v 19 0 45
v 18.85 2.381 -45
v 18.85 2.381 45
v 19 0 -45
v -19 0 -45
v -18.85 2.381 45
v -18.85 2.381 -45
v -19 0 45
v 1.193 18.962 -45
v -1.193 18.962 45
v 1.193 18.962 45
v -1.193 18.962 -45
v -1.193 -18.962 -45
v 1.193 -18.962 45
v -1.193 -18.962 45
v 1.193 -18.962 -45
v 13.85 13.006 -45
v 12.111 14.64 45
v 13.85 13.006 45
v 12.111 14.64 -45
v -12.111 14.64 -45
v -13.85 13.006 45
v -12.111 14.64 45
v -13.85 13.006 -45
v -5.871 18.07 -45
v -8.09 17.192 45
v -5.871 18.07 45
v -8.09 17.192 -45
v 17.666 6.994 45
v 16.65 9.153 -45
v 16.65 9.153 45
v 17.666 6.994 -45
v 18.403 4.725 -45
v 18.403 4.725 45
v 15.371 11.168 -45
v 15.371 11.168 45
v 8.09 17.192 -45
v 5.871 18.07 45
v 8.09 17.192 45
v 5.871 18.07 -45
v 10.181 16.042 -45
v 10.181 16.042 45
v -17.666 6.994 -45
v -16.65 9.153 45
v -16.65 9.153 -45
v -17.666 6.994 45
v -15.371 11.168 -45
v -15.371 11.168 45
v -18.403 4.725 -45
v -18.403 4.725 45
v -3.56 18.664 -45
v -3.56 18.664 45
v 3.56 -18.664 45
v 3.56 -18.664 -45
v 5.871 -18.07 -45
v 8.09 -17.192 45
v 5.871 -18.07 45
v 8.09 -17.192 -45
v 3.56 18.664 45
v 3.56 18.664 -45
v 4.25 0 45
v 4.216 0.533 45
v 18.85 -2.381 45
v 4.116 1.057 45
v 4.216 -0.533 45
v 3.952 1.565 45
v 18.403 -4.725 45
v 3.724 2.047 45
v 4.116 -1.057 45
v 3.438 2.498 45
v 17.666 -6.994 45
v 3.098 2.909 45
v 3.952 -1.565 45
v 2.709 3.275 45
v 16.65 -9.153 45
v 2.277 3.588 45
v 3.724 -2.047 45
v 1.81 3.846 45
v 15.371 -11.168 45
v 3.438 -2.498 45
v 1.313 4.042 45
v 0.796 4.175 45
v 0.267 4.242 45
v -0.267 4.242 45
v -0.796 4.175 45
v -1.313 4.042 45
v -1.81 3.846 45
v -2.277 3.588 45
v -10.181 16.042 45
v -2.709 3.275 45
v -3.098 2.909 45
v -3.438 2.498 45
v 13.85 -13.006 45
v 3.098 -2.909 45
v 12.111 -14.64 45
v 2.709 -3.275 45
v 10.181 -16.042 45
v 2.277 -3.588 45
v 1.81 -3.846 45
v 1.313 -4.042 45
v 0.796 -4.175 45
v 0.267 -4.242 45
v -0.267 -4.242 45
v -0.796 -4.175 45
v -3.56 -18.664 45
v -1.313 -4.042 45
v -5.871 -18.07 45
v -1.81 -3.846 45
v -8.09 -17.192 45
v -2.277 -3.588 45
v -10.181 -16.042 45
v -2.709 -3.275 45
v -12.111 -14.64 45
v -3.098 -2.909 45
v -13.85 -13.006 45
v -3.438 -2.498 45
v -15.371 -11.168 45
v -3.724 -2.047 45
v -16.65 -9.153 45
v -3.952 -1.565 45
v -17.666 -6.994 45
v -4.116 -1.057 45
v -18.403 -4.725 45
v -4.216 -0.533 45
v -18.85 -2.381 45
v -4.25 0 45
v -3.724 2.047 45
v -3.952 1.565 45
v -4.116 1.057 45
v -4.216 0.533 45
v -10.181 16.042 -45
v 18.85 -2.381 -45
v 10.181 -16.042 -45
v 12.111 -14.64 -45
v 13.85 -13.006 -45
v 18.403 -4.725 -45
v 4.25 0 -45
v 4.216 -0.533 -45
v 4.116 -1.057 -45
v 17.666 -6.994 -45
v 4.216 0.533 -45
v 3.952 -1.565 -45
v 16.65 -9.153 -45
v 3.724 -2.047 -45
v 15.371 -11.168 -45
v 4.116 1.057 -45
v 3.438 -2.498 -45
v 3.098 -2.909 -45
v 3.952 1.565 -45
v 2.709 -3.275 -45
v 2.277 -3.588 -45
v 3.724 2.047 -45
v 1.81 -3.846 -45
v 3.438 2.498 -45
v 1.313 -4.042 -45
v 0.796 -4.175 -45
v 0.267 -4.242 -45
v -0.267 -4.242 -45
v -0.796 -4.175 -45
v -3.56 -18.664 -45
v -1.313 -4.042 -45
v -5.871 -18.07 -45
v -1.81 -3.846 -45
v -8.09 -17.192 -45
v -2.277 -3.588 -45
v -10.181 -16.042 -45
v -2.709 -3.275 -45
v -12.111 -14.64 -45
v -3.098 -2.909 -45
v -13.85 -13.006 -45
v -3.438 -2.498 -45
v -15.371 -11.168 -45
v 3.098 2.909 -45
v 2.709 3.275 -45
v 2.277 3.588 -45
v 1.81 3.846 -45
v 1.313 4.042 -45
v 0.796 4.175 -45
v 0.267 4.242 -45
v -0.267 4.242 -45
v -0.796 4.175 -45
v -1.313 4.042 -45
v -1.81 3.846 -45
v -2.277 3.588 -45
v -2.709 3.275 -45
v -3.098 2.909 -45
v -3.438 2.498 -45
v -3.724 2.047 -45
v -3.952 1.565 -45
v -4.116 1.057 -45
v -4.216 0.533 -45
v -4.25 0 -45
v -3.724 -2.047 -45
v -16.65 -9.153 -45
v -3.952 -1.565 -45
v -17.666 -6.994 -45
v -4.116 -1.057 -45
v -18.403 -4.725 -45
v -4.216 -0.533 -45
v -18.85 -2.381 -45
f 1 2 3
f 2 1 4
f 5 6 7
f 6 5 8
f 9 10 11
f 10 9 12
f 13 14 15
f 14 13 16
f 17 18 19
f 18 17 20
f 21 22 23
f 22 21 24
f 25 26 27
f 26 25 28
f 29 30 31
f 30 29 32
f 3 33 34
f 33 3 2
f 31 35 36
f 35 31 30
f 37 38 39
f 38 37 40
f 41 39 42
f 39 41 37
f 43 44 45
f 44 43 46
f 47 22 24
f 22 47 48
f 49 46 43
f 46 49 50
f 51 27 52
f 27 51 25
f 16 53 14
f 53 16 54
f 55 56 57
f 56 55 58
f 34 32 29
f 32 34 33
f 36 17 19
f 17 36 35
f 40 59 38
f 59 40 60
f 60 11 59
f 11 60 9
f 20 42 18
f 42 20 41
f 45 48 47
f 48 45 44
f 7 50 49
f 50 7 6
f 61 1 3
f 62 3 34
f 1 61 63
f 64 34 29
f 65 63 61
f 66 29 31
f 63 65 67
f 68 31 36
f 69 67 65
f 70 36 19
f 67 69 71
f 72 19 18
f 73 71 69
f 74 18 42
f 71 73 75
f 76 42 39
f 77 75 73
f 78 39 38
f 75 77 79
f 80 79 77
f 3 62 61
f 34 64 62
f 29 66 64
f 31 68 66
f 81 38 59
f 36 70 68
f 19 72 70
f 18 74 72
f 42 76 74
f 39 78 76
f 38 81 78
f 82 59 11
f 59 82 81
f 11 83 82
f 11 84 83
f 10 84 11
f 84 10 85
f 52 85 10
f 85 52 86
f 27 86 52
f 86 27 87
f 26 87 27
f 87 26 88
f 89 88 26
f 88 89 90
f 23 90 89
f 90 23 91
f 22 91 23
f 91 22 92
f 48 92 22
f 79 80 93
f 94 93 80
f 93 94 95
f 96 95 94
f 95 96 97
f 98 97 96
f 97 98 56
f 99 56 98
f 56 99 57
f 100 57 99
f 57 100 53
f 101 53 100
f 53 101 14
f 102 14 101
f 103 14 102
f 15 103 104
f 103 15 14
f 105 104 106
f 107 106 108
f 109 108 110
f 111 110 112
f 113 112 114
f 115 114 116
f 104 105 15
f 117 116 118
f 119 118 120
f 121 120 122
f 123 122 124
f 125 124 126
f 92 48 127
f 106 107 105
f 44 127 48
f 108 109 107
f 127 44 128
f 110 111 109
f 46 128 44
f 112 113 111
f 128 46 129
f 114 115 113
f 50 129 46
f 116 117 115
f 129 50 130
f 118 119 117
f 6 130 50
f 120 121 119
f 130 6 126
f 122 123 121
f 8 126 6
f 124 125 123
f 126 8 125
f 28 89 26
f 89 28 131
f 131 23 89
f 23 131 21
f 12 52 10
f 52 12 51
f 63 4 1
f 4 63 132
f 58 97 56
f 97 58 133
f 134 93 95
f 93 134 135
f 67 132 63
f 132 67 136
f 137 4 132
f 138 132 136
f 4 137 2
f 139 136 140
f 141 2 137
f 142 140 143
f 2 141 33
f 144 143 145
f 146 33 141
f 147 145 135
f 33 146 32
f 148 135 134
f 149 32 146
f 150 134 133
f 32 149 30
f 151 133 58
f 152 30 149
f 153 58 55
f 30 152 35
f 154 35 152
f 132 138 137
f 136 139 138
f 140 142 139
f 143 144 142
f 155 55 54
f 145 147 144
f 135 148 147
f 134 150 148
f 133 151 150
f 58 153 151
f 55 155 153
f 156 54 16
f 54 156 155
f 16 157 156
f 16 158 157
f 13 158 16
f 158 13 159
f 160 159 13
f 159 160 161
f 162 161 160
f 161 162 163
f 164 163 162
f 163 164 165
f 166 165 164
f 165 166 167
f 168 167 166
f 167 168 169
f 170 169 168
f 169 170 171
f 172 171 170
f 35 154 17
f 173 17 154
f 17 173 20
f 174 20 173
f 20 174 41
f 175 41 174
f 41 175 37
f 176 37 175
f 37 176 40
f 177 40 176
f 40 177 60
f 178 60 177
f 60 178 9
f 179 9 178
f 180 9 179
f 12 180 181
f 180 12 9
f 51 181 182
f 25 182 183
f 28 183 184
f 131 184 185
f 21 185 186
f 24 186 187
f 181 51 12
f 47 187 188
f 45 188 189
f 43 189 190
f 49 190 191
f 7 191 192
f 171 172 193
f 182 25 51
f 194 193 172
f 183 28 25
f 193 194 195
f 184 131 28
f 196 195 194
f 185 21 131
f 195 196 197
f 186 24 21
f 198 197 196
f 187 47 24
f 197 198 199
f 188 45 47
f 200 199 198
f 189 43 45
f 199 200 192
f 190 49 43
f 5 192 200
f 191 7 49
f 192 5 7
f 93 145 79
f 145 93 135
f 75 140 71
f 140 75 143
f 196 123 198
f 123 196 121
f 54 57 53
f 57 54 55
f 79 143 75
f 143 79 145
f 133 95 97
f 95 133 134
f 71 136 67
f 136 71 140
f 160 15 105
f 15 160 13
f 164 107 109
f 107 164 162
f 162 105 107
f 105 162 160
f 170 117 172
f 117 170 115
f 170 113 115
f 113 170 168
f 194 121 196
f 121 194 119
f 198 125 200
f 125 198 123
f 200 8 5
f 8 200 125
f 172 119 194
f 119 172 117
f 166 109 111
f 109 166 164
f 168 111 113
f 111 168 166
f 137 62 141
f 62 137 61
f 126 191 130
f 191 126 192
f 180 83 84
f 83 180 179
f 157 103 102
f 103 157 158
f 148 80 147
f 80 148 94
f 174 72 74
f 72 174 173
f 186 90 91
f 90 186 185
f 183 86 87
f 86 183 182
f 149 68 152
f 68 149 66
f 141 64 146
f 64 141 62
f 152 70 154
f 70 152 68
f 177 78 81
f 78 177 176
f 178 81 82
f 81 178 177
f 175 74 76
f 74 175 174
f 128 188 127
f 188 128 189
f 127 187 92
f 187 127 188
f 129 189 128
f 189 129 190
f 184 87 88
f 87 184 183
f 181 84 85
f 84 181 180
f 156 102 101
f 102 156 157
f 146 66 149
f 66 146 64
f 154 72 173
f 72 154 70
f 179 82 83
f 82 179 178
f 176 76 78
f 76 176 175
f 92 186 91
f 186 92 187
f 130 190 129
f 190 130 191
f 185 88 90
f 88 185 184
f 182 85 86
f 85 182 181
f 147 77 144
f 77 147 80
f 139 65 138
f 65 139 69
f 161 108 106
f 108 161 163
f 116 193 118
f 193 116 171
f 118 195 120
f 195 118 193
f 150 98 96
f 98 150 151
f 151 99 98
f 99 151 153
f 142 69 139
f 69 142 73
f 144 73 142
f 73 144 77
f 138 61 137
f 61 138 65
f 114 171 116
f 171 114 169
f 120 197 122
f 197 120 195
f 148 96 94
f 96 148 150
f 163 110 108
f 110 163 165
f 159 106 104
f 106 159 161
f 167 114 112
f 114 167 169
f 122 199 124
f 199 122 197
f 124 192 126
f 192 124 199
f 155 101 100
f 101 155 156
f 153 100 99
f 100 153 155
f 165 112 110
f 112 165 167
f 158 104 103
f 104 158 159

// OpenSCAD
$fn = 50;


difference() {
	union() {
		translate(v = [0, 0, -45.0000000000]) {
			cylinder(h = 90, r = 19.0000000000);
		}
	}
	union() {
		translate(v = [0, 0, -100.0000000000]) {
			cylinder(h = 200, r = 4.2500000000);
		}
	}
}
